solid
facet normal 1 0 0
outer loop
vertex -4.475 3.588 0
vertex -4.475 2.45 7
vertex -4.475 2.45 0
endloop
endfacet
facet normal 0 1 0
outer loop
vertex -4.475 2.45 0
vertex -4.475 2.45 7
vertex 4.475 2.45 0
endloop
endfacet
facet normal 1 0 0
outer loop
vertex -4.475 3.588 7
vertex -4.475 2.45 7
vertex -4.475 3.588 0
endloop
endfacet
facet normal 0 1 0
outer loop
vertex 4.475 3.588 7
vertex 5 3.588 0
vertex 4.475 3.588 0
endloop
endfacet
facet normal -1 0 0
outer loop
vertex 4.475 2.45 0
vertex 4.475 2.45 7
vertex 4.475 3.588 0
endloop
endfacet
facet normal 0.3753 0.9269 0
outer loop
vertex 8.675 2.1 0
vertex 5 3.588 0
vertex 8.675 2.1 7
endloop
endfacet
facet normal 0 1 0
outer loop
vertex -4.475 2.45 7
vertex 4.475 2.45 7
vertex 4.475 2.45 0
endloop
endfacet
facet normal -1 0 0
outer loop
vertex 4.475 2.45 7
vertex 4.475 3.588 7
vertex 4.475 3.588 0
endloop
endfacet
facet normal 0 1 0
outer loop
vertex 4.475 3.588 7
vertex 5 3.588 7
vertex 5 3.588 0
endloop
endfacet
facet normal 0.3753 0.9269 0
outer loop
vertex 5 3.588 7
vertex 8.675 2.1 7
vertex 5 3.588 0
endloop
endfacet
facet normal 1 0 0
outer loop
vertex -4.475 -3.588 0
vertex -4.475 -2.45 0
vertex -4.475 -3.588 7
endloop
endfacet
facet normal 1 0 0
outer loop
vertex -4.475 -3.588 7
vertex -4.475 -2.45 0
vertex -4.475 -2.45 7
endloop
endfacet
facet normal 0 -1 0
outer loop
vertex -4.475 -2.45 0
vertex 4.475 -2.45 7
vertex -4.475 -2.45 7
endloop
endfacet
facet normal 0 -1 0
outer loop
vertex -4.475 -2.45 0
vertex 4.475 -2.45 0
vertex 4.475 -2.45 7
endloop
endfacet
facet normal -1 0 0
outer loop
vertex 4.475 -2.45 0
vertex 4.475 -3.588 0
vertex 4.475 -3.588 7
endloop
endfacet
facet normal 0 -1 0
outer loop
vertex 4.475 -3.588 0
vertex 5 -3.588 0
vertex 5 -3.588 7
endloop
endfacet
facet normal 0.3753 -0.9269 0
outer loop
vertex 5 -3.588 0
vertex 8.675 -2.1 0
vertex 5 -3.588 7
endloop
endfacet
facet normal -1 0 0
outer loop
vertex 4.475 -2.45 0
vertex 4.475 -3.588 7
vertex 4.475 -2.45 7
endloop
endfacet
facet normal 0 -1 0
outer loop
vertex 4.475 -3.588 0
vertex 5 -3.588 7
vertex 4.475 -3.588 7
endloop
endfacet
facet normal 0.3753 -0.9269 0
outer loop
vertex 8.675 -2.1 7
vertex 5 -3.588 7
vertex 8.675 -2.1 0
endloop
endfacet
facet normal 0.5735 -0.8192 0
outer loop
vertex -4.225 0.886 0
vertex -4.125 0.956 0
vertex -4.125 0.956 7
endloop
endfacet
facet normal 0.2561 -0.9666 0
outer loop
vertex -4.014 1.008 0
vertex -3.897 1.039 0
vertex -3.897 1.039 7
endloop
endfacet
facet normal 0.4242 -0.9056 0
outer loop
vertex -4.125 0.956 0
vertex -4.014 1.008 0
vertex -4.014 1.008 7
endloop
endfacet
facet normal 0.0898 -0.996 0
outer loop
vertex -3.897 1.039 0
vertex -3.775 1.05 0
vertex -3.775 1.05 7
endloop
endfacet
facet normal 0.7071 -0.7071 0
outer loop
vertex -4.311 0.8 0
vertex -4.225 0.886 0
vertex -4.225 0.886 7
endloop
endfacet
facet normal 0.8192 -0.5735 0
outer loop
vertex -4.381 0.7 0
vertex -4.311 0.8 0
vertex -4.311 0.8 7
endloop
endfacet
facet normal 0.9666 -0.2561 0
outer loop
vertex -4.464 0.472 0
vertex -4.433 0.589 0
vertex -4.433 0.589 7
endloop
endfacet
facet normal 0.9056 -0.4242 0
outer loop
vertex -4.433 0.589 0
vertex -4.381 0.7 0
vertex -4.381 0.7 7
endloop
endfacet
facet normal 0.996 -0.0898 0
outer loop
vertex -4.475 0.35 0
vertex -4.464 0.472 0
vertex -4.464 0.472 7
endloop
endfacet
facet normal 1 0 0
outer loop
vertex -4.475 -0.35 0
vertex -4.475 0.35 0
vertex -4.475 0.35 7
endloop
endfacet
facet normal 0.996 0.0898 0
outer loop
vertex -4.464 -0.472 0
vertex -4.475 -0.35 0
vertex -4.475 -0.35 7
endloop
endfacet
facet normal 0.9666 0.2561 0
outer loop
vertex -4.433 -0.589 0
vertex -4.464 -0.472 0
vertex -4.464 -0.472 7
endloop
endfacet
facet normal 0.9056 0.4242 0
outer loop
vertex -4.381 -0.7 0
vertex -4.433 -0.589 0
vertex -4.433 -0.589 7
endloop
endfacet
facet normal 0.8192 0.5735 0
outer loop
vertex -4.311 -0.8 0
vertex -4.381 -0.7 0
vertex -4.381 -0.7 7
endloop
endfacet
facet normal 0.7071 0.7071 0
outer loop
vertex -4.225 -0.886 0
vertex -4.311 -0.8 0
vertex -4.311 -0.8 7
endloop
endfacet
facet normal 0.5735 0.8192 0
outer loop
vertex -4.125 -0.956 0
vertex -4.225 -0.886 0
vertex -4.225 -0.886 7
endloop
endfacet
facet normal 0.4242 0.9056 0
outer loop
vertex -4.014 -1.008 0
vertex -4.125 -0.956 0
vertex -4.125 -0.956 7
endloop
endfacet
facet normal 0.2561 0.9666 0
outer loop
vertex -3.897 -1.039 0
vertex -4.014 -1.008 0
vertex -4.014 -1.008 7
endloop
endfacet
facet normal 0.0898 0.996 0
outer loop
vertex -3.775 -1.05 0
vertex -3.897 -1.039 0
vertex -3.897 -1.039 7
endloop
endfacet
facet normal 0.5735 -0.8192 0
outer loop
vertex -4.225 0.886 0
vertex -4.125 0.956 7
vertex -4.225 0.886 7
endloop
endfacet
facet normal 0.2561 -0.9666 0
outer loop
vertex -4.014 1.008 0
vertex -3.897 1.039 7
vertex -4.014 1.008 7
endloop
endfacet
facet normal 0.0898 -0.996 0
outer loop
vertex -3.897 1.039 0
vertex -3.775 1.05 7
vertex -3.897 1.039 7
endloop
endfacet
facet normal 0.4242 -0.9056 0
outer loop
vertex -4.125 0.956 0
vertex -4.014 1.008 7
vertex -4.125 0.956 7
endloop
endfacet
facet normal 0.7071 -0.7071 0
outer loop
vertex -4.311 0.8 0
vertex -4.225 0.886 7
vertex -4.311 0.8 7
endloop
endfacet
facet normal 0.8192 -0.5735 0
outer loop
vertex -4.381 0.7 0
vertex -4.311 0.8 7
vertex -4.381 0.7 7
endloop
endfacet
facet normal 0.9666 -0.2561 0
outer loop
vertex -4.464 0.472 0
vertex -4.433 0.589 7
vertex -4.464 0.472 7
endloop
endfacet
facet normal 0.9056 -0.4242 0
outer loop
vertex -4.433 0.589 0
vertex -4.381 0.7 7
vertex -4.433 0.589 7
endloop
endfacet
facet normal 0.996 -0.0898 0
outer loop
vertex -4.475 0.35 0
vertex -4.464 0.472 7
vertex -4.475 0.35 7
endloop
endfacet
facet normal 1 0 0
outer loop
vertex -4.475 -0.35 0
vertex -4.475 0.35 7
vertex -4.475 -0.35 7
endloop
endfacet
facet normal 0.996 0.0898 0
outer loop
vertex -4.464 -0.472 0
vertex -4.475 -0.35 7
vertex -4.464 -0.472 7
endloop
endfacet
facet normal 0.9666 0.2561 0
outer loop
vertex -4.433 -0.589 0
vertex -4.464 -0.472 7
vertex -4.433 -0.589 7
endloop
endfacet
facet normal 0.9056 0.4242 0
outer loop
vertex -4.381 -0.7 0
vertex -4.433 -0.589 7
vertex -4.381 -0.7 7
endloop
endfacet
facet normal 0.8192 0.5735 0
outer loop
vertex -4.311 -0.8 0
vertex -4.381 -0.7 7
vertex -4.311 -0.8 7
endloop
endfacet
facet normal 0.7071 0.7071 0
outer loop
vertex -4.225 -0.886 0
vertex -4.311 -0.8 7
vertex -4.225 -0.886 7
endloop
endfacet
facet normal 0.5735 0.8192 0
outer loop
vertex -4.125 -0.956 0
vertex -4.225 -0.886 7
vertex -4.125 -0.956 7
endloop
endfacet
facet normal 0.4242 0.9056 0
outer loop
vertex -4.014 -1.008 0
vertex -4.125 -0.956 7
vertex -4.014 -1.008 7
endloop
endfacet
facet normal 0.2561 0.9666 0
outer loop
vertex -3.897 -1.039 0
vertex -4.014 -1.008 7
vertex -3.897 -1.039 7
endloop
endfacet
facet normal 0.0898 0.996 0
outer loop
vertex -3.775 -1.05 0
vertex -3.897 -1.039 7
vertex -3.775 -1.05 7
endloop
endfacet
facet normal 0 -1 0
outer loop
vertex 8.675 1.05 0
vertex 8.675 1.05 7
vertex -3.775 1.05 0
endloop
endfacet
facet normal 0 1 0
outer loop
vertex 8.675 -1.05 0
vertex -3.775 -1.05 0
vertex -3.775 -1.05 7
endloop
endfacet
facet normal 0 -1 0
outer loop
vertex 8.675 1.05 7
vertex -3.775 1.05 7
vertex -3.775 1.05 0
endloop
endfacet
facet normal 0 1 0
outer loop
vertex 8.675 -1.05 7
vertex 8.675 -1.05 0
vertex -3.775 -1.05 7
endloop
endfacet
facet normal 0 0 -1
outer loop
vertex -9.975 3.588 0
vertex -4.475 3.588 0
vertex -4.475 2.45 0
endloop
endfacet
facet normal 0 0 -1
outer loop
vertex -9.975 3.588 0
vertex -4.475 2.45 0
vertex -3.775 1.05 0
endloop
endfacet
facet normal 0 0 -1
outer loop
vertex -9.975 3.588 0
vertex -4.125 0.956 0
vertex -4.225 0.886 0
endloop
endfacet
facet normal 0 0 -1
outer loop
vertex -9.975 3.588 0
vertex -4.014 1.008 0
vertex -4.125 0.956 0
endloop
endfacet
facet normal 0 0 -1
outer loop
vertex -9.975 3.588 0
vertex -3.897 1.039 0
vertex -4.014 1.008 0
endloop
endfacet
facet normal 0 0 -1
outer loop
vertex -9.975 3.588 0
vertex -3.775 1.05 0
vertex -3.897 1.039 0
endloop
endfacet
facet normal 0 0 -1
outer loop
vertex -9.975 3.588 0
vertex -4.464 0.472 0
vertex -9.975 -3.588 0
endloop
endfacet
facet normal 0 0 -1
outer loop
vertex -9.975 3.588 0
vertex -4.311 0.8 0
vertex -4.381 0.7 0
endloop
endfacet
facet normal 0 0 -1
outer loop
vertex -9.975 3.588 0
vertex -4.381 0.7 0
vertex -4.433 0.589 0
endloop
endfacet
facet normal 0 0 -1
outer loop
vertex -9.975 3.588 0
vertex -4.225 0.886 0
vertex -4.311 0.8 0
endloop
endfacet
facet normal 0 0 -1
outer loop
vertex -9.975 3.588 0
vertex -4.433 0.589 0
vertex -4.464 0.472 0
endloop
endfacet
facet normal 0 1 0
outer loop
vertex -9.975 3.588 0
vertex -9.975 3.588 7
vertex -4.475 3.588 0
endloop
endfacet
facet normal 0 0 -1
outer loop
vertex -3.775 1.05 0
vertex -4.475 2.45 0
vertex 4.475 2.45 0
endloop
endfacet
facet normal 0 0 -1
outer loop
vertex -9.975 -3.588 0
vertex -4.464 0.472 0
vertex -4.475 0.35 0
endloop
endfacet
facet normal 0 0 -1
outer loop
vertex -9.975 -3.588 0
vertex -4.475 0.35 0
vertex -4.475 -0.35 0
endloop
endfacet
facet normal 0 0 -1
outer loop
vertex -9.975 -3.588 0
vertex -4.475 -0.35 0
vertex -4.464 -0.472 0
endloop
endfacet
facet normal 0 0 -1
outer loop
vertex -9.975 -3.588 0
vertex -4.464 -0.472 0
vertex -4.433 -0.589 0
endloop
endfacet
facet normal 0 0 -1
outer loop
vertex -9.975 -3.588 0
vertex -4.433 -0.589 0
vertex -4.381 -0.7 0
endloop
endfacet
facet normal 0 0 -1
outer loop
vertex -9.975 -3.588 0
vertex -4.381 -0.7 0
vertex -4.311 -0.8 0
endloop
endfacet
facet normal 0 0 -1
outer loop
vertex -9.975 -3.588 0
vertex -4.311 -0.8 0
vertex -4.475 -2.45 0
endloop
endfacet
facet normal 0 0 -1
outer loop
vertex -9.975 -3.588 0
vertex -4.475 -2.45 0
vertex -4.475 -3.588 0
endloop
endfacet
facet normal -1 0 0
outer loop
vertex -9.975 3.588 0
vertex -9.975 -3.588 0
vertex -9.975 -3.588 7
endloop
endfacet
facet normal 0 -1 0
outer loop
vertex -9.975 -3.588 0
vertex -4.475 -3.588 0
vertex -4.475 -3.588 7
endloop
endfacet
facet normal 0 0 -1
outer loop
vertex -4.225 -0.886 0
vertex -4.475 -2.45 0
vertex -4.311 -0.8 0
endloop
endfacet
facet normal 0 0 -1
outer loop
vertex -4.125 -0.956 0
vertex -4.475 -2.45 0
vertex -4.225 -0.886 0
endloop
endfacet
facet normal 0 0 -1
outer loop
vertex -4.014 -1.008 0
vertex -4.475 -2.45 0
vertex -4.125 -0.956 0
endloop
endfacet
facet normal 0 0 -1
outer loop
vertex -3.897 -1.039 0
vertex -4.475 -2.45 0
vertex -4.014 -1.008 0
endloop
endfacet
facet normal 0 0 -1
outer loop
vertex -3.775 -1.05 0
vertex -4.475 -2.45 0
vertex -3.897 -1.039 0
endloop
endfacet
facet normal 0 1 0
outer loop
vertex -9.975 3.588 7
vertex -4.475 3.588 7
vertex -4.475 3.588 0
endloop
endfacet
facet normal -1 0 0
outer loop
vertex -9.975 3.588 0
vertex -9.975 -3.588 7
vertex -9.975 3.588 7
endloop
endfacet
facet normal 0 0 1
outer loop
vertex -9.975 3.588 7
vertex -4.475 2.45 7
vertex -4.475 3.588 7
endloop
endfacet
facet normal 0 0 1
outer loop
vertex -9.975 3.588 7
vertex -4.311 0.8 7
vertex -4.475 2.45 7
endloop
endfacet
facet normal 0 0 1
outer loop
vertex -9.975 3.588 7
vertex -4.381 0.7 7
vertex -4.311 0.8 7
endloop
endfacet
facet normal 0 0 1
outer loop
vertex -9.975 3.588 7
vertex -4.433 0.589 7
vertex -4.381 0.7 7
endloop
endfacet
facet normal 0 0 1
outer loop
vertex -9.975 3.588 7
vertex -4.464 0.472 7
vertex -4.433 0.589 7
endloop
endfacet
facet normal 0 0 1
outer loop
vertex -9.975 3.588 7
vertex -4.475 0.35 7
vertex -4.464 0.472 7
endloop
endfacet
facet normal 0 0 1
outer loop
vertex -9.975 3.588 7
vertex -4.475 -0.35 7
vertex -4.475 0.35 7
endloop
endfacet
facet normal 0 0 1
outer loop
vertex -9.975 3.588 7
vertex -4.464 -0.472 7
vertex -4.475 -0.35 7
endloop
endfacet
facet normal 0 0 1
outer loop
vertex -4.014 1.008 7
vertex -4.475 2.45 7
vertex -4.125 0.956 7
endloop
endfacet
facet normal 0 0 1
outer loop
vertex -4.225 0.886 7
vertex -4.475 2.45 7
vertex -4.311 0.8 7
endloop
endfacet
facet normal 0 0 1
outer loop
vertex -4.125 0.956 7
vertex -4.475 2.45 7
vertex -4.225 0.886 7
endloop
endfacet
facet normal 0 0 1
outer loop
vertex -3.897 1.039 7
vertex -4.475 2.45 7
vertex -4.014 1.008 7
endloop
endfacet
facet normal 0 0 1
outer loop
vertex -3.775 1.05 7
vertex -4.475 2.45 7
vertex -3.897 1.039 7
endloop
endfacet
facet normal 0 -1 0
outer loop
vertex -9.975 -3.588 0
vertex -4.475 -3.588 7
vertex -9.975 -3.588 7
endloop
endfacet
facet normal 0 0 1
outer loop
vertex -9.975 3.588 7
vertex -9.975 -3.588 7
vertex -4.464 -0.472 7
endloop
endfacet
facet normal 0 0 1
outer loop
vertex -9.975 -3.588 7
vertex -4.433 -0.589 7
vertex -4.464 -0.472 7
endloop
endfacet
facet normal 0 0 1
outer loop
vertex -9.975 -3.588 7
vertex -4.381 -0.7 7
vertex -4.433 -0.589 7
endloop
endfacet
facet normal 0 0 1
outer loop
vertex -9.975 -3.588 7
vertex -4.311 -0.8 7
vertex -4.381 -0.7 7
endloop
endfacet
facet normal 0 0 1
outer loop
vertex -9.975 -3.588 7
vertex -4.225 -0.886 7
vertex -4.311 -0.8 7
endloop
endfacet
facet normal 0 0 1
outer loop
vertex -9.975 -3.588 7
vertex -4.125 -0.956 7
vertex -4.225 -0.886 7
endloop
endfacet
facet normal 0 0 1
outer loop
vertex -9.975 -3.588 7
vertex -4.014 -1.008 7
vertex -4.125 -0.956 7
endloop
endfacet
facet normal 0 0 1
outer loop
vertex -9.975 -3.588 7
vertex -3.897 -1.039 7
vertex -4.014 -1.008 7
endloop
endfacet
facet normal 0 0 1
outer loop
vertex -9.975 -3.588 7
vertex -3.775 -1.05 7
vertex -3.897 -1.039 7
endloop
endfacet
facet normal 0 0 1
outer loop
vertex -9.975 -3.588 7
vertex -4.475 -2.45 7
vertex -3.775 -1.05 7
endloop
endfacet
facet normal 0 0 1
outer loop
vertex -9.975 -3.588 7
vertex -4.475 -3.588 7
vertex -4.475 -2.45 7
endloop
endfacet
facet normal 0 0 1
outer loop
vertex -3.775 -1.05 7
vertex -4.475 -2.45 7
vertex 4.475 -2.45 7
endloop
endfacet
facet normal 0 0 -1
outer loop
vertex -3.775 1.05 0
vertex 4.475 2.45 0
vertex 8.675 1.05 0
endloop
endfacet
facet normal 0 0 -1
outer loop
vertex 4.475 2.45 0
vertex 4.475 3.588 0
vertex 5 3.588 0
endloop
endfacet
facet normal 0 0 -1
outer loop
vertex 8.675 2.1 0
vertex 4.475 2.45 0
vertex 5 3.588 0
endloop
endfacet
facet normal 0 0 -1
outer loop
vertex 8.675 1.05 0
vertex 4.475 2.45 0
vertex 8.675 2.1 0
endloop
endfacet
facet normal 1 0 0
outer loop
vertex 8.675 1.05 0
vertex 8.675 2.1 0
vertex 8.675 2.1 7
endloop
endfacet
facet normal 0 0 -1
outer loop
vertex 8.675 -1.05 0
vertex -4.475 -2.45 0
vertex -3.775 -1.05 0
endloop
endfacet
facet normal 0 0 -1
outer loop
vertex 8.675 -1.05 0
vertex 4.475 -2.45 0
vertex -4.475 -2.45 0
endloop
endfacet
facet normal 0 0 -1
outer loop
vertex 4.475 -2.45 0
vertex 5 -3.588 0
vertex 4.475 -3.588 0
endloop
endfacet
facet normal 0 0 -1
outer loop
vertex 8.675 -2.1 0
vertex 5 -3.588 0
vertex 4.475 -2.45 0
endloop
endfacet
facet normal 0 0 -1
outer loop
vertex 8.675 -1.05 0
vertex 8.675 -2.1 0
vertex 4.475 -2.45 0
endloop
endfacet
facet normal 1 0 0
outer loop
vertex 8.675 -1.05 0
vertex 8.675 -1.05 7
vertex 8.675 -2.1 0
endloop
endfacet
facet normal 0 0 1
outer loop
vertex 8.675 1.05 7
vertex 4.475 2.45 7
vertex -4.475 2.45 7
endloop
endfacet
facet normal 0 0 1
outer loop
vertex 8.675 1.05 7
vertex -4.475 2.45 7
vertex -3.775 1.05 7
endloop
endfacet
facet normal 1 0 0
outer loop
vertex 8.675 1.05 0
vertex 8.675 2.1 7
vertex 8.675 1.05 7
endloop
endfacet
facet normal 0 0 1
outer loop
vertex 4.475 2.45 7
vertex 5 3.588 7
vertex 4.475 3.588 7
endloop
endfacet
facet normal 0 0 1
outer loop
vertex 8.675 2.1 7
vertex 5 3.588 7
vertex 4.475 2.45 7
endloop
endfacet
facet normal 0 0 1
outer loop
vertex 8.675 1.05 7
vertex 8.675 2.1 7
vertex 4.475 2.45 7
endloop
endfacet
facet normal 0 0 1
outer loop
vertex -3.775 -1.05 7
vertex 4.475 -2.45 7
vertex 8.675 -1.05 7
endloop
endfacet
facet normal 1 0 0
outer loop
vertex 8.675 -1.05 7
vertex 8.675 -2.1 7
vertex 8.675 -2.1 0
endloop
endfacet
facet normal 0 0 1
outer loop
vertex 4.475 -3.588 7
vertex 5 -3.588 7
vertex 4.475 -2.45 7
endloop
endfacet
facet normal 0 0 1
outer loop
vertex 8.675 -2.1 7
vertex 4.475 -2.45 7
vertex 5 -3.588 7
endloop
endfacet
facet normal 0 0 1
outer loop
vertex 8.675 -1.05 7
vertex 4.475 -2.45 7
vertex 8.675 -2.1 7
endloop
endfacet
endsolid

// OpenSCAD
$fn = 50;

difference() {
	union() {
		translate(v = [0, 0, 0]) {
			rotate(a = [90, 0, 0]) {
				difference() {
					union() {
						translate(v = [-9.975, 0, -3.5875000000000004]) {
							cube(size = [18.65, 7.0, 7.175000000000001]);
						}
					}
					union() {
						translate(v = [0, 7.1, 0]) {
							rotate(a = [90, 0, 0]) {
								linear_extrude(height = 7.2) {
									polygon(points = [[-4.475, -2.45], [4.475, -2.45], [4.475, -3.5875], [5.0, -3.5875], [8.775, -2.059524], [8.775, -3.6875], [-4.475, -3.6875]]);
								}
							}
						}
						translate(v = [0, 7.1, 0]) {
							rotate(a = [90, 0, 0]) {
								linear_extrude(height = 7.2) {
									polygon(points = [[-4.475, 2.45], [4.475, 2.45], [4.475, 3.5875], [5.0, 3.5875], [8.775, 2.059524], [8.775, 3.6875], [-4.475, 3.6875]]);
								}
							}
						}
						translate(v = [0, 7.1, 0]) {
							rotate(a = [90, 0, 0]) {
								linear_extrude(height = 7.2) {
									polygon(points = [[-4.475, 0.35], [-4.464365, 0.471554], [-4.432785, 0.589414], [-4.381218, 0.7], [-4.311231, 0.799951], [-4.224951, 0.886231], [-4.125, 0.956218], [-4.014414, 1.007785], [-3.896554, 1.039365], [-3.775, 1.05], [8.775, 1.05], [8.775, -1.05], [-3.775, -1.05], [-3.896554, -1.039365], [-4.014414, -1.007785], [-4.125, -0.956218], [-4.224951, -0.886231], [-4.311231, -0.799951], [-4.381218, -0.7], [-4.432785, -0.589414], [-4.464365, -0.471554], [-4.475, -0.35]]);
								}
							}
						}
					}
				}
			}
		}
	}
	union();
}
